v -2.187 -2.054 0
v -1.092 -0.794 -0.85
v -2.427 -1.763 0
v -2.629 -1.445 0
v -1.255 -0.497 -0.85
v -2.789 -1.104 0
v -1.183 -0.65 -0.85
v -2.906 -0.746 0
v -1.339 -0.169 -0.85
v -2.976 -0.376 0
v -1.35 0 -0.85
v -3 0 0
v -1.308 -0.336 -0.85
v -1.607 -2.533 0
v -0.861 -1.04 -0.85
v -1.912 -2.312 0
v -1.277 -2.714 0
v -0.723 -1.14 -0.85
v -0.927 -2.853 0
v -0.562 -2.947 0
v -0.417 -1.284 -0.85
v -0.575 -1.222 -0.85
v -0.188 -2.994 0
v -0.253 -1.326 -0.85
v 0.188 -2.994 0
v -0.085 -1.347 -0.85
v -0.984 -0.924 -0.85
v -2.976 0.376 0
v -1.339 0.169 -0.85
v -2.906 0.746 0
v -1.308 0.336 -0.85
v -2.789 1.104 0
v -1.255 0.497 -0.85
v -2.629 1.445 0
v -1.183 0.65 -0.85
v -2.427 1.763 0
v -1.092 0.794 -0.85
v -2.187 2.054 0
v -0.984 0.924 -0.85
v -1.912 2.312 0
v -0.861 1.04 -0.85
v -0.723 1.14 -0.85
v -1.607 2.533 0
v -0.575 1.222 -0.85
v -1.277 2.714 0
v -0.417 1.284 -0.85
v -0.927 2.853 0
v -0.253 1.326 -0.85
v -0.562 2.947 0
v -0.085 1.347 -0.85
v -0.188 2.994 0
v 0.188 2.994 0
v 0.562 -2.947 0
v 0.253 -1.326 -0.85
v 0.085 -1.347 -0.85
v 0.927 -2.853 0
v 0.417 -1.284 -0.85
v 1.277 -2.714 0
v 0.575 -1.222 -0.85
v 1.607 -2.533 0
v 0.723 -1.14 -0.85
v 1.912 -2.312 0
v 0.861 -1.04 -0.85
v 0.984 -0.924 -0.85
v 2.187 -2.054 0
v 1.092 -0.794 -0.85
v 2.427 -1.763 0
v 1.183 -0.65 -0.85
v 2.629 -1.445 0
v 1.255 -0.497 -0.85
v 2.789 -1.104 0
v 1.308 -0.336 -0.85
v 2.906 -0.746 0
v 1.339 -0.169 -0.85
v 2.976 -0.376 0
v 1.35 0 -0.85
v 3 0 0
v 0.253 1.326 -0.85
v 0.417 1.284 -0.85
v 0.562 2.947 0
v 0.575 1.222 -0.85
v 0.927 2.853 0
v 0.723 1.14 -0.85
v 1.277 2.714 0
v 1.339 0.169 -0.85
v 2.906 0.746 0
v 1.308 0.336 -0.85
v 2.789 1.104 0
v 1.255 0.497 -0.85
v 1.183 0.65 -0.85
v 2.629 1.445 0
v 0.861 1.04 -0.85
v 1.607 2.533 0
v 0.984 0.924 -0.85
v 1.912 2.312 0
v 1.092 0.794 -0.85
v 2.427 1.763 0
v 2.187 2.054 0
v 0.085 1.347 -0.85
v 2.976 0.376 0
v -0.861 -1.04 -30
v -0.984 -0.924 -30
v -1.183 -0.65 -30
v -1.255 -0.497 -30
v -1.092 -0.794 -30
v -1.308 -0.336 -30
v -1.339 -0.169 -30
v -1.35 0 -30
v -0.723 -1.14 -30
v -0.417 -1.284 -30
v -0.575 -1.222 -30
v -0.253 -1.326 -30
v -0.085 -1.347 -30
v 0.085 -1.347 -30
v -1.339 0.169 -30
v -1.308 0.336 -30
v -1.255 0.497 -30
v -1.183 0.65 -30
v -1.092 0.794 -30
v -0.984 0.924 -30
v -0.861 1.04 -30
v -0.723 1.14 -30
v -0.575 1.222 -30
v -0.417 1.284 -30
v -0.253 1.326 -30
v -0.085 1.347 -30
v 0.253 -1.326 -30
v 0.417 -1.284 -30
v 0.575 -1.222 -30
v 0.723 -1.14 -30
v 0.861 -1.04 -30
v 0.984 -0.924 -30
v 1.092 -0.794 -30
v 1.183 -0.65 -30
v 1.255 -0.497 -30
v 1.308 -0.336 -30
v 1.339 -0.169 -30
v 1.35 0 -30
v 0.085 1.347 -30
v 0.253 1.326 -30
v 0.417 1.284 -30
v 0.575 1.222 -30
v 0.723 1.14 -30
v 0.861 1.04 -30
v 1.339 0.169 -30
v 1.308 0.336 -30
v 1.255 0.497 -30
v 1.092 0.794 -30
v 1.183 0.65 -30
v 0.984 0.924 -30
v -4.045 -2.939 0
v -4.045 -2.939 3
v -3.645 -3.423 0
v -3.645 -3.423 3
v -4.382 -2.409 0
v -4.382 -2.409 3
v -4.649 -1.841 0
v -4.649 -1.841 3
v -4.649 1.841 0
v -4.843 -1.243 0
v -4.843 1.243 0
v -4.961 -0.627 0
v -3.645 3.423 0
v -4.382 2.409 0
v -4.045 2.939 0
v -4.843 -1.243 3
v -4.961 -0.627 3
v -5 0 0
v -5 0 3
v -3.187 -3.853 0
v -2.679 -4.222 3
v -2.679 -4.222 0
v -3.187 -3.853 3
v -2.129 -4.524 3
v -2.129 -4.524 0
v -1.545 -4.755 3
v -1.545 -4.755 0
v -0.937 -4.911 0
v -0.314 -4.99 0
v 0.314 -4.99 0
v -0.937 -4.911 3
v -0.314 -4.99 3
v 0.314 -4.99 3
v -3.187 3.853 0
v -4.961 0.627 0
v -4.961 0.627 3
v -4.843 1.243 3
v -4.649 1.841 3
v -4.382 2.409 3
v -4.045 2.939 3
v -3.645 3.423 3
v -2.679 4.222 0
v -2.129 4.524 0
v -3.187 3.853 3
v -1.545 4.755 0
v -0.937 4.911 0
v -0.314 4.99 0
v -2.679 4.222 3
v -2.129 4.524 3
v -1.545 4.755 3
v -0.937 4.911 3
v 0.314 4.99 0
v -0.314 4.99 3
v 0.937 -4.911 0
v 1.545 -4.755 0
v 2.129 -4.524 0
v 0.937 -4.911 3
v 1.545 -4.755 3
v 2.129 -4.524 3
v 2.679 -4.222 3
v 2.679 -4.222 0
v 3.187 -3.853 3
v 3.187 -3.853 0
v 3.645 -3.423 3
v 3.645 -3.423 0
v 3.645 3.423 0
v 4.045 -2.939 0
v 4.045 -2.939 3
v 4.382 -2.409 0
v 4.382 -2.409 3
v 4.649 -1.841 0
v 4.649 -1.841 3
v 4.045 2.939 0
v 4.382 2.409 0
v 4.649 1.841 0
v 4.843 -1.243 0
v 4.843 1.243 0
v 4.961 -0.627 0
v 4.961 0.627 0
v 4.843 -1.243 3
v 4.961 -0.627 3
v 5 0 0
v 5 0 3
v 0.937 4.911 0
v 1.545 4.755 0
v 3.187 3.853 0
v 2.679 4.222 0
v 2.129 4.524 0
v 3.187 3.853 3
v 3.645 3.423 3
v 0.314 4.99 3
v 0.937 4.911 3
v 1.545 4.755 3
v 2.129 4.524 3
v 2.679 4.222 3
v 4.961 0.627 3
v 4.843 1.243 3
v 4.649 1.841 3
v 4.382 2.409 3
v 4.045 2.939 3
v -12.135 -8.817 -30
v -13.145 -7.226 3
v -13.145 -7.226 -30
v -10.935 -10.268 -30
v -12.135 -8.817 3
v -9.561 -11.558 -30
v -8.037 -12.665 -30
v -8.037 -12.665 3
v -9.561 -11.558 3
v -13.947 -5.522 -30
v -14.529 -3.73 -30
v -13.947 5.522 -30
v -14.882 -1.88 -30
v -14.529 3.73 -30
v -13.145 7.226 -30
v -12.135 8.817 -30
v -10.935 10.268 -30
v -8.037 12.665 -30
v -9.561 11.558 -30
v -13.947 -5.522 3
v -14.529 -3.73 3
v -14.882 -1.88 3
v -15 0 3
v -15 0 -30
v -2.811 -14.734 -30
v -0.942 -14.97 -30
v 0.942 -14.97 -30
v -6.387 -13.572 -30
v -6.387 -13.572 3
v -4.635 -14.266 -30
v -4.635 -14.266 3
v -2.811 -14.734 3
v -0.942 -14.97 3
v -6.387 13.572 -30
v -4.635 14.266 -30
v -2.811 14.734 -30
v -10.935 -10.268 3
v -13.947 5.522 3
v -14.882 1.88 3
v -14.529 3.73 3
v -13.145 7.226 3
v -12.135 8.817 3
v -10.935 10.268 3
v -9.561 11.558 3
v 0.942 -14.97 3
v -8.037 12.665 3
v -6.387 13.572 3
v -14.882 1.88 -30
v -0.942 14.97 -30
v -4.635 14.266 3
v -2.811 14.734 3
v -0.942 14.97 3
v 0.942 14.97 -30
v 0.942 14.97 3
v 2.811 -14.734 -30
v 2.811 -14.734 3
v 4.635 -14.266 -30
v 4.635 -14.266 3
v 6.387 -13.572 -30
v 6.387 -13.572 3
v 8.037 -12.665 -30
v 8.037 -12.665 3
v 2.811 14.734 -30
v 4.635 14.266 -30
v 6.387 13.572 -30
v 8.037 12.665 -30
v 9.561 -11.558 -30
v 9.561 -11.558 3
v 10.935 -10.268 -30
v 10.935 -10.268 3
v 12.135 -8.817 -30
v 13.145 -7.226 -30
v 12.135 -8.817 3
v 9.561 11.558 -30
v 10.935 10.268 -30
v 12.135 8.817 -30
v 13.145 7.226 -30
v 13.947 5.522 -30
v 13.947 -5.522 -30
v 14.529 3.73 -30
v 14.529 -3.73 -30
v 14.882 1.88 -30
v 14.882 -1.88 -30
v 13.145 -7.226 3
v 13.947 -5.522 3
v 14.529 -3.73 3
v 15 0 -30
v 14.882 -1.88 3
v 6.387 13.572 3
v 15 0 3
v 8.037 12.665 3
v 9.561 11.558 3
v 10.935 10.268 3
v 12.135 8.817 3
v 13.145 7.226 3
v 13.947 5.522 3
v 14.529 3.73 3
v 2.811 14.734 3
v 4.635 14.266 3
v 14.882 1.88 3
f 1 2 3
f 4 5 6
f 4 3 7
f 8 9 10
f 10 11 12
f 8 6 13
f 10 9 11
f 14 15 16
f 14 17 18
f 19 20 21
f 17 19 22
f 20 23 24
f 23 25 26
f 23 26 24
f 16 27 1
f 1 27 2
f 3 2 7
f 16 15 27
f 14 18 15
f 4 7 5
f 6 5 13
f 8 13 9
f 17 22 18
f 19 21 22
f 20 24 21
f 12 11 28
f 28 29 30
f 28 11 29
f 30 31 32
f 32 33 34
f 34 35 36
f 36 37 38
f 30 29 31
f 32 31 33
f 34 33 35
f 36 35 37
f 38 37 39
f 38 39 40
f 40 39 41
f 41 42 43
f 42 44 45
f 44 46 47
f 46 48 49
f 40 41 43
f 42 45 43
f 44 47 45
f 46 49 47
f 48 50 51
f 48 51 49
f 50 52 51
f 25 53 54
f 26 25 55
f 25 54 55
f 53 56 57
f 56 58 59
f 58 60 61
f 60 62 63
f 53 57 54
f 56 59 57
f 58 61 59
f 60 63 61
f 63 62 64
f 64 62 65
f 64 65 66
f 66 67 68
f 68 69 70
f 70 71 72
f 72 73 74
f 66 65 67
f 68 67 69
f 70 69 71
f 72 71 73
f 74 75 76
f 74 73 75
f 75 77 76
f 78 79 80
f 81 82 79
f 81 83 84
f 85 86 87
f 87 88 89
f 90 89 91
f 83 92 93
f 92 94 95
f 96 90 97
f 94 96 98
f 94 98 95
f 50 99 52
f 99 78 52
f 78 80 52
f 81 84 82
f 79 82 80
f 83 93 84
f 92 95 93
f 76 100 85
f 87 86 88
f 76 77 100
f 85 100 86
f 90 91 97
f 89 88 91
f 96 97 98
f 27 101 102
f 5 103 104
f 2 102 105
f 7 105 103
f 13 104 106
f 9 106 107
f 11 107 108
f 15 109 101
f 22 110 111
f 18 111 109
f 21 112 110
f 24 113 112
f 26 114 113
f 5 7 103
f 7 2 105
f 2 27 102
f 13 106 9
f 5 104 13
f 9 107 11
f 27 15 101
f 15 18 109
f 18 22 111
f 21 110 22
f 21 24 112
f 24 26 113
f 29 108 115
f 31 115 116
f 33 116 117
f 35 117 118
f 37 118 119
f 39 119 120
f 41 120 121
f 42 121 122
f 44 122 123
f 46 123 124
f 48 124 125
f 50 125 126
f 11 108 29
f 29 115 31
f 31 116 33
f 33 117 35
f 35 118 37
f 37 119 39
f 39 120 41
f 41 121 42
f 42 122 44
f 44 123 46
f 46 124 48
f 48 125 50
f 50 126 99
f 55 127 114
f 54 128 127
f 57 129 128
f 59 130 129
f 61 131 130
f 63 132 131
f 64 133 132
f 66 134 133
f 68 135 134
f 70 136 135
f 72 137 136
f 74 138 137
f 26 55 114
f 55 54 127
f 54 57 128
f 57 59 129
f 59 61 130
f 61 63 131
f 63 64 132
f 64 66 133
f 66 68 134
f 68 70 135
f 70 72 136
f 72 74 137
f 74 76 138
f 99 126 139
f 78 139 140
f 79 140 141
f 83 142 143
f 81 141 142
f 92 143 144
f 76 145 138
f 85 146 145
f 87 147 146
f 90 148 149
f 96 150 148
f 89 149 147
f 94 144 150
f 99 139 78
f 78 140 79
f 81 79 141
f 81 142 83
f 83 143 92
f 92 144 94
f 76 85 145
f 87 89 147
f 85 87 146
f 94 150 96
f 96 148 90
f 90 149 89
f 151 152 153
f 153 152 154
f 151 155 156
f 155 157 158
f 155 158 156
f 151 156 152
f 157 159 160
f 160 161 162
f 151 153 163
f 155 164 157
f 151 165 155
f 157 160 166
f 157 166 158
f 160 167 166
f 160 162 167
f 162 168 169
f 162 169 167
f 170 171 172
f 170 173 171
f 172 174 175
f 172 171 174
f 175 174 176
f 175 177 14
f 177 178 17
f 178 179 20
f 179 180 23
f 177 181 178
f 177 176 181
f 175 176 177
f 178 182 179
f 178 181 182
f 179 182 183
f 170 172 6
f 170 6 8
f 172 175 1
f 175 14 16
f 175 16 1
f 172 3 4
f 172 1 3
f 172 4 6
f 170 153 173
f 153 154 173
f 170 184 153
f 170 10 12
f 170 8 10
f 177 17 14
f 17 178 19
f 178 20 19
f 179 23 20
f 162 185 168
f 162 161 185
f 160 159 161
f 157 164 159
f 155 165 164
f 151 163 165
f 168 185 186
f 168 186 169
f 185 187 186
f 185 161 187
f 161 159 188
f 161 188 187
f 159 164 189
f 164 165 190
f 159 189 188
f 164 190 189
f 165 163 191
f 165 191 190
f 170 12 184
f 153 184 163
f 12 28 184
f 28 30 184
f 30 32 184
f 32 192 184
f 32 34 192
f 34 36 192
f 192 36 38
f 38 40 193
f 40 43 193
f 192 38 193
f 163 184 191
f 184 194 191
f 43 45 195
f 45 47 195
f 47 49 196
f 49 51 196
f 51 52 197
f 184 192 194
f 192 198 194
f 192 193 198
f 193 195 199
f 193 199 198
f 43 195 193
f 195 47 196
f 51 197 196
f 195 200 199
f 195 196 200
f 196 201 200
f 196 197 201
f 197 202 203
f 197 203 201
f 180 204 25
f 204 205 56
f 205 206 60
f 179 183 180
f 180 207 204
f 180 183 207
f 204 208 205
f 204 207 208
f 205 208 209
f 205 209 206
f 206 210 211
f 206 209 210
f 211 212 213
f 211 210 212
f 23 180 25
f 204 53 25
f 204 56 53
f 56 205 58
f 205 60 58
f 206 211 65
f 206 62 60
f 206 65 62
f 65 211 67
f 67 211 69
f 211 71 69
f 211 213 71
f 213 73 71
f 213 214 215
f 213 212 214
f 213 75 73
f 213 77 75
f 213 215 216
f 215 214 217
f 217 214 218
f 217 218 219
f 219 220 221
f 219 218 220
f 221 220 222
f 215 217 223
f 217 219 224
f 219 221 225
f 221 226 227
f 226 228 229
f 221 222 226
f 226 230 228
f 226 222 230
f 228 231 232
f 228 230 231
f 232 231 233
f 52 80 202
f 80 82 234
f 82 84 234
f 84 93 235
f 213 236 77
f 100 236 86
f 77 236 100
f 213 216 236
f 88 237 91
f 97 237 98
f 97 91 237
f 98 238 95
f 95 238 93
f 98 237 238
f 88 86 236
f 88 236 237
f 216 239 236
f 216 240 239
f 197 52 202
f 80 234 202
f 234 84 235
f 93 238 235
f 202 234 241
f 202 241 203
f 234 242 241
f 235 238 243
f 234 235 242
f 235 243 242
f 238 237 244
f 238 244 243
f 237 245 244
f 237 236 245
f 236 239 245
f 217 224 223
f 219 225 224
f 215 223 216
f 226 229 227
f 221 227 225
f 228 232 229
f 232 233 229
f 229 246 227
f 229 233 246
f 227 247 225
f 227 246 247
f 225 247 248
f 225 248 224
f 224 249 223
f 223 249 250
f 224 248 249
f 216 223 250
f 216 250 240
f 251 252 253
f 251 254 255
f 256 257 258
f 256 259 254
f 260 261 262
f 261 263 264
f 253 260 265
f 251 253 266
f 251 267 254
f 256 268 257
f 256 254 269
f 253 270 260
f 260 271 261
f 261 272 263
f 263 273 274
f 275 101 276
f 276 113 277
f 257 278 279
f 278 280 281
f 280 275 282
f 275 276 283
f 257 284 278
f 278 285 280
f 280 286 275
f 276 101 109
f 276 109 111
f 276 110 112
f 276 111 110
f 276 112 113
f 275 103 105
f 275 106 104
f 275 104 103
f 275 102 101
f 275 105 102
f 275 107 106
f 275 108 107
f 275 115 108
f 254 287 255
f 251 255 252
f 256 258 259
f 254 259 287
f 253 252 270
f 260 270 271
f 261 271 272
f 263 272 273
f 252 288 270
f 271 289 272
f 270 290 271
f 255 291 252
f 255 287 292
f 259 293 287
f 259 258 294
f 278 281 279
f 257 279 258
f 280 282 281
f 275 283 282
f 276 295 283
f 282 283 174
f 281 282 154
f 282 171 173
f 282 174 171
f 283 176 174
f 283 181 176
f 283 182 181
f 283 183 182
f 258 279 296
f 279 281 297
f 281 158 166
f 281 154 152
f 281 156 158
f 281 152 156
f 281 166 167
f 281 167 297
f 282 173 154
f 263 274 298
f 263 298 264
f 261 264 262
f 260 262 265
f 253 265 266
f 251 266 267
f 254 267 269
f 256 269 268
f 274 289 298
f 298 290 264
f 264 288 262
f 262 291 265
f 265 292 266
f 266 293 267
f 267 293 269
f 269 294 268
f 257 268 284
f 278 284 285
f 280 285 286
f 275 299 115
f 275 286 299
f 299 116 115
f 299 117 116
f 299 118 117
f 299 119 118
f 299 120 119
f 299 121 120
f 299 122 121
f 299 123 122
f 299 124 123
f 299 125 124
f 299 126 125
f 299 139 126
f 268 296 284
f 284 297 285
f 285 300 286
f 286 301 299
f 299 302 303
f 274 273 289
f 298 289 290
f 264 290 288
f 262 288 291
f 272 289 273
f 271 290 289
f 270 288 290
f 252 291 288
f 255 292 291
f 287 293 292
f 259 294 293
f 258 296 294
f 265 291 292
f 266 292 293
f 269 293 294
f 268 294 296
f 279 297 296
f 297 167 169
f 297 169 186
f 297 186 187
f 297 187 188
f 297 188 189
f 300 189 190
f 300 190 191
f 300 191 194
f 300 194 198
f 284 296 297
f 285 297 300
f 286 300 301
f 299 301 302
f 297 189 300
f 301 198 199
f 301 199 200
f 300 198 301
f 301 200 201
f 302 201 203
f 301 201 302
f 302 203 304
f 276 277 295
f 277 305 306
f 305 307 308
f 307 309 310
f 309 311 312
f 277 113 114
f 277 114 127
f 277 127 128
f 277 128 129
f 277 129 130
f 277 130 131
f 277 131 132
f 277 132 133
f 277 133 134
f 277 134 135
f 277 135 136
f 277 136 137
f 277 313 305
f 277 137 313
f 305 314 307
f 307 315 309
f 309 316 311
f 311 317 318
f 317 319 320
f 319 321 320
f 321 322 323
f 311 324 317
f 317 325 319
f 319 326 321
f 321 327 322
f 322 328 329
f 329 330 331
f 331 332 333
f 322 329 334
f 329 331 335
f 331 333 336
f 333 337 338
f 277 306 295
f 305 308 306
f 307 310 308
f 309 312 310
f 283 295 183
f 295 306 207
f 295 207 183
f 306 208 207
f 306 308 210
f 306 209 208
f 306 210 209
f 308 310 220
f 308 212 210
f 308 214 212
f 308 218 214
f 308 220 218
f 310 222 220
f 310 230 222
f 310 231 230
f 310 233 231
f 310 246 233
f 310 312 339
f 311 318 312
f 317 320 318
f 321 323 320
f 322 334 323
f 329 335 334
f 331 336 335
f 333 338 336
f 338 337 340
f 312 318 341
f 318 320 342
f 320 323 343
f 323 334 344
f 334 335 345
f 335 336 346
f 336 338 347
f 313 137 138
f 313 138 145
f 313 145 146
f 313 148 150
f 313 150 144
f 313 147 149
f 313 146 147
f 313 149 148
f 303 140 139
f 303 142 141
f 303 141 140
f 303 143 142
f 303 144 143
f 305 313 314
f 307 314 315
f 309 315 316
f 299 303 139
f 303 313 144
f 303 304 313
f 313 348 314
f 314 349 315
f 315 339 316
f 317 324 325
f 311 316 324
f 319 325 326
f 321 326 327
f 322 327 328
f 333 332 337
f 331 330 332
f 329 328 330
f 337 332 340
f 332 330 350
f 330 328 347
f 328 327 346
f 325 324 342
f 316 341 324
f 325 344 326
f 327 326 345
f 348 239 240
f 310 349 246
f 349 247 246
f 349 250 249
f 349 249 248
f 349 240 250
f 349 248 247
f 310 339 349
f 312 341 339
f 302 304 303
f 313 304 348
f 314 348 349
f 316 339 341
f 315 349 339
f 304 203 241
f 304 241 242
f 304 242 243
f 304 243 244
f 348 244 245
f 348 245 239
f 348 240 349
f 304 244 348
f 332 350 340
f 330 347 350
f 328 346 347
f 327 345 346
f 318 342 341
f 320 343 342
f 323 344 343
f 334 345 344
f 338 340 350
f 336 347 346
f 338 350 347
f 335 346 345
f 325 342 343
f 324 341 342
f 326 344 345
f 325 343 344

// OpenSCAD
$fn = 50;


difference() {
	union() {
		translate(v = [0, 0, -30.0000000000]) {
			cylinder(h = 33, r = 15.0000000000);
		}
	}
	union() {
		translate(v = [0, 0, 0]) {
			rotate(a = [0, 0, 0]) {
				difference() {
					union() {
						translate(v = [0, 0, -33.0000000000]) {
							cylinder(h = 33, r = 1.0000000000);
						}
						translate(v = [0, 0, -0.8500000000]) {
							cylinder(h = 0.8500000000, r1 = 1.3500000000, r2 = 3.0000000000);
						}
						translate(v = [0, 0, -33.0000000000]) {
							cylinder(h = 33, r = 1.3500000000);
						}
						translate(v = [0, 0, -33.0000000000]) {
							cylinder(h = 33, r = 1.0000000000);
						}
					}
					union();
				}
			}
		}
		#cylinder(h = 3, r = 5.0000000000);
	}
}
